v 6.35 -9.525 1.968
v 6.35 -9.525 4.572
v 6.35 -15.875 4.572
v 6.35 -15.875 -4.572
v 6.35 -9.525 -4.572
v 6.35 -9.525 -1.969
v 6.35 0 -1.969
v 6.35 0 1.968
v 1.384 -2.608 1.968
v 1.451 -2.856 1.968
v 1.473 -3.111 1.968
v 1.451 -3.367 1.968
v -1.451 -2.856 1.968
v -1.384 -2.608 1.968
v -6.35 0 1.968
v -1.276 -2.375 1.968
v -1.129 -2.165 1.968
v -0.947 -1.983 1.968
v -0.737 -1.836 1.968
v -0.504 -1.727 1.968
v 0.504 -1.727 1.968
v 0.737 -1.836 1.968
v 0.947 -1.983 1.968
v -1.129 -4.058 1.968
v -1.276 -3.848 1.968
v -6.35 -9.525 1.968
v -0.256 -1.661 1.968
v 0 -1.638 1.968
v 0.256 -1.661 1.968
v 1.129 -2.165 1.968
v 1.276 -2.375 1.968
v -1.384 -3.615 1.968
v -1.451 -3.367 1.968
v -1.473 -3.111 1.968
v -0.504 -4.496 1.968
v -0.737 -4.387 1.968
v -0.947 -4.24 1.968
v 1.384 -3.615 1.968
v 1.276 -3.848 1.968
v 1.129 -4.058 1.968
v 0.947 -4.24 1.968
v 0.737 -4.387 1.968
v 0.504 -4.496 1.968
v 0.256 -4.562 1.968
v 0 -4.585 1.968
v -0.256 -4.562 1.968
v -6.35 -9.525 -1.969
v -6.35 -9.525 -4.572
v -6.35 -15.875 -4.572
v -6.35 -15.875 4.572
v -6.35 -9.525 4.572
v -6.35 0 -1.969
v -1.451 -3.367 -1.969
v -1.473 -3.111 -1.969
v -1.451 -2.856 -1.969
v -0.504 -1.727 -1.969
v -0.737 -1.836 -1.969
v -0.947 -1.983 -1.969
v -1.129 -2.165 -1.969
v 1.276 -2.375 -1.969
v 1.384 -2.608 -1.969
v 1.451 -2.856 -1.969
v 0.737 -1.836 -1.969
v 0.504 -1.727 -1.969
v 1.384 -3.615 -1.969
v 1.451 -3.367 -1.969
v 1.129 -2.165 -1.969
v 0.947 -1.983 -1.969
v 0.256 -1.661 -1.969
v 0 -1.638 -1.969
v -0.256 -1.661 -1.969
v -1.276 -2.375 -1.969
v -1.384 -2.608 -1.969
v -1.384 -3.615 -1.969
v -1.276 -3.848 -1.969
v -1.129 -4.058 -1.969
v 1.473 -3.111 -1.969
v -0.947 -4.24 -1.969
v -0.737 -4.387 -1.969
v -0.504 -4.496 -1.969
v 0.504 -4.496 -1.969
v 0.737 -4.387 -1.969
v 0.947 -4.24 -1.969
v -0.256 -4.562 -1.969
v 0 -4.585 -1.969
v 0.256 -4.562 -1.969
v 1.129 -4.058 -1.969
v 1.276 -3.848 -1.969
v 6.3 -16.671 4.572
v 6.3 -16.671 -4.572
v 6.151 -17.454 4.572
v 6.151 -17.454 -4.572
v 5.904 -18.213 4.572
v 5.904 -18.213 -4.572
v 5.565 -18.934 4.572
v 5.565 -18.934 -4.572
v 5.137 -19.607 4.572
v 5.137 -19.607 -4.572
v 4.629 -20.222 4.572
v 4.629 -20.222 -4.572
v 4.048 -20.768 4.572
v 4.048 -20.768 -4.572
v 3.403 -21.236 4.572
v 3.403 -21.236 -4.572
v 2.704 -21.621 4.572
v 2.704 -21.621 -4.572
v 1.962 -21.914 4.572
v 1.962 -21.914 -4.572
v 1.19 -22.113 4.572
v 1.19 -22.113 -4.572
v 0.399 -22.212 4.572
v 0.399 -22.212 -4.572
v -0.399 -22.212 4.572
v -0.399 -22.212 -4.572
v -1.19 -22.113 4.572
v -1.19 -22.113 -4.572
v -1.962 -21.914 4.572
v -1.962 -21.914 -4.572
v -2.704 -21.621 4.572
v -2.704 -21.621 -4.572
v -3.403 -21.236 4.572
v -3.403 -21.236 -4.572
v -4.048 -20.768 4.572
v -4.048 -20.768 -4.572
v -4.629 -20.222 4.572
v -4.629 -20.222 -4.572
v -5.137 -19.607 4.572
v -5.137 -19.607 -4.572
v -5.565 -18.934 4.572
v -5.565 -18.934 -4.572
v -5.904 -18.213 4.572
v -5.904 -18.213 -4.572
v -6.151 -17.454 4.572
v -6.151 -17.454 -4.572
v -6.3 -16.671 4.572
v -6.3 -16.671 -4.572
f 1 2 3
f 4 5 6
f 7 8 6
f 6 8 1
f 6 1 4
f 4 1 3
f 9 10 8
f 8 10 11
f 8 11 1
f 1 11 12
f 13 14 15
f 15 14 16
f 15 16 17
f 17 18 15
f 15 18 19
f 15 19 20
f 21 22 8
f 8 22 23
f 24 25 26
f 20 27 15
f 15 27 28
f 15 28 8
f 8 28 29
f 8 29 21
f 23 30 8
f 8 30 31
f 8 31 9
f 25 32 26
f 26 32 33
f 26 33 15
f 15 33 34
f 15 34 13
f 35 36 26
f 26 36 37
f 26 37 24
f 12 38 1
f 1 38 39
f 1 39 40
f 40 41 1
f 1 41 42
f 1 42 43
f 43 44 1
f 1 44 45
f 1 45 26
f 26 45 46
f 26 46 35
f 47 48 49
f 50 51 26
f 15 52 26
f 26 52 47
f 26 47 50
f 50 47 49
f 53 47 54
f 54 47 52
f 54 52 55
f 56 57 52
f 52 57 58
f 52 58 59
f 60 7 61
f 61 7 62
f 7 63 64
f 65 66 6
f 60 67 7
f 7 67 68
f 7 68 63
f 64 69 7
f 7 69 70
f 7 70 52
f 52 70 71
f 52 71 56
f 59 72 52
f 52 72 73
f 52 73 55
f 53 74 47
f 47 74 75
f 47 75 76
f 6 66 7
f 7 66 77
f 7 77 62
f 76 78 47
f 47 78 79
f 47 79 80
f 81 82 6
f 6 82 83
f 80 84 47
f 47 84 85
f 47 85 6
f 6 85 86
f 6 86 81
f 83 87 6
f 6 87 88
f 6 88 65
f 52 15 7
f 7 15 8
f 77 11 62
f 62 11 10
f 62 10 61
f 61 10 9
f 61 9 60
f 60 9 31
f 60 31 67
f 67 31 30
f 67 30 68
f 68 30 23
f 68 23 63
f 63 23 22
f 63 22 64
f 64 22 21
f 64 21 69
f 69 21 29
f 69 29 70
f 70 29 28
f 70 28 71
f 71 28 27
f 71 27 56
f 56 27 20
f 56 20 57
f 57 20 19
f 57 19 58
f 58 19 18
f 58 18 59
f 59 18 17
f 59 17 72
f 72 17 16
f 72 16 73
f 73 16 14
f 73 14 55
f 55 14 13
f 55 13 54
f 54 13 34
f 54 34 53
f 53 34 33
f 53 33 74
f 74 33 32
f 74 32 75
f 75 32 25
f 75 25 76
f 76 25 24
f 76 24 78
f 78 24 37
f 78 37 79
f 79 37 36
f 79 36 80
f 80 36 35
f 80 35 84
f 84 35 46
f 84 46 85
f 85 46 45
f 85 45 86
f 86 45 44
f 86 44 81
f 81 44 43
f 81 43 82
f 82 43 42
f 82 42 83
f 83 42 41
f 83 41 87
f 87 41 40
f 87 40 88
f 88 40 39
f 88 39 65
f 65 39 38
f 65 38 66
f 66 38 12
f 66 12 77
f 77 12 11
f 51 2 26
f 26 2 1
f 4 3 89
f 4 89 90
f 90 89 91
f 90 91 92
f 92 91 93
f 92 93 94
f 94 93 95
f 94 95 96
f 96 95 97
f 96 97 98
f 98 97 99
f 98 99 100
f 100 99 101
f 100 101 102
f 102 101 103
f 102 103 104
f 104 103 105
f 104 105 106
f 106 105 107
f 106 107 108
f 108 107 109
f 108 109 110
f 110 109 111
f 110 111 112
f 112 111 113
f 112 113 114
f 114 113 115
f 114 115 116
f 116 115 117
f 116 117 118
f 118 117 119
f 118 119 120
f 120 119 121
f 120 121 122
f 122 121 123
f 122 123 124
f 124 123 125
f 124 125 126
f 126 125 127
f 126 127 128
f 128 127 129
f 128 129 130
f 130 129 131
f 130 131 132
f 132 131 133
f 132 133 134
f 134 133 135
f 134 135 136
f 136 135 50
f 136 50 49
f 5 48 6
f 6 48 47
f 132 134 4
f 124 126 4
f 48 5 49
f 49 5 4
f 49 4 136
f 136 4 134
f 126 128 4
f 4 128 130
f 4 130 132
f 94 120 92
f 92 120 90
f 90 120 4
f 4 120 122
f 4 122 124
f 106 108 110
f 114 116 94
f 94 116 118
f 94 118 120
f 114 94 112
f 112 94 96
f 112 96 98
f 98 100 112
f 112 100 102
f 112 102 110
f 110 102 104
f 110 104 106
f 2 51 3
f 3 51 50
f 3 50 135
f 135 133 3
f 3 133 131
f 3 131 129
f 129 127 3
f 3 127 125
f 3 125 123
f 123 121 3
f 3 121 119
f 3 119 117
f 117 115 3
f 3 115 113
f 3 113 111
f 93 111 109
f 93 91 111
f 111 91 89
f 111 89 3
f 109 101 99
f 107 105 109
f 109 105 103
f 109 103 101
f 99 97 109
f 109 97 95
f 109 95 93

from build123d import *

# Parameters (mm, degrees)
SKETCH1_W             = 12.7
SKETCH1_H             = 3.937
BOSS_EXTRUDE1_DEPTH   = 9.525
F_4_CLEARANCE_HOLE1_D = 2.9464
BOSS_EXTRUDE3_DEPTH   = 9.144


with BuildPart() as part:
    # Sketch1 → Boss-Extrude1 (new body)
    with BuildSketch(Plane(origin=(0, 0, 0), x_dir=(1, 0, 0), z_dir=(0, 1, 0))):
        Rectangle(SKETCH1_W, SKETCH1_H)
    extrude(amount=-BOSS_EXTRUDE1_DEPTH)

    # #4 Clearance Hole1 (through all)
    with Locations(Plane.XY.offset(1.9685)):
        with Locations((0, -3.1115)):
            Hole(F_4_CLEARANCE_HOLE1_D / 2)

    # Sketch8 → Boss-Extrude3 (add)
    with BuildSketch(Plane(origin=(-1.778, 0, 4.572), x_dir=(-1, 0, 0), z_dir=(0, 0, -1))):
        with BuildLine():
            Line((4.572, -15.875), (4.572, -9.525))
            Line((4.572, -9.525), (-8.128, -9.525))
            Line((-8.128, -9.525), (-8.128, -15.875))
            ThreePointArc((-8.128, -15.875), (-1.778, -22.225), (4.572, -15.875))
        make_face()
    extrude(amount=BOSS_EXTRUDE3_DEPTH)


solid = part.part
